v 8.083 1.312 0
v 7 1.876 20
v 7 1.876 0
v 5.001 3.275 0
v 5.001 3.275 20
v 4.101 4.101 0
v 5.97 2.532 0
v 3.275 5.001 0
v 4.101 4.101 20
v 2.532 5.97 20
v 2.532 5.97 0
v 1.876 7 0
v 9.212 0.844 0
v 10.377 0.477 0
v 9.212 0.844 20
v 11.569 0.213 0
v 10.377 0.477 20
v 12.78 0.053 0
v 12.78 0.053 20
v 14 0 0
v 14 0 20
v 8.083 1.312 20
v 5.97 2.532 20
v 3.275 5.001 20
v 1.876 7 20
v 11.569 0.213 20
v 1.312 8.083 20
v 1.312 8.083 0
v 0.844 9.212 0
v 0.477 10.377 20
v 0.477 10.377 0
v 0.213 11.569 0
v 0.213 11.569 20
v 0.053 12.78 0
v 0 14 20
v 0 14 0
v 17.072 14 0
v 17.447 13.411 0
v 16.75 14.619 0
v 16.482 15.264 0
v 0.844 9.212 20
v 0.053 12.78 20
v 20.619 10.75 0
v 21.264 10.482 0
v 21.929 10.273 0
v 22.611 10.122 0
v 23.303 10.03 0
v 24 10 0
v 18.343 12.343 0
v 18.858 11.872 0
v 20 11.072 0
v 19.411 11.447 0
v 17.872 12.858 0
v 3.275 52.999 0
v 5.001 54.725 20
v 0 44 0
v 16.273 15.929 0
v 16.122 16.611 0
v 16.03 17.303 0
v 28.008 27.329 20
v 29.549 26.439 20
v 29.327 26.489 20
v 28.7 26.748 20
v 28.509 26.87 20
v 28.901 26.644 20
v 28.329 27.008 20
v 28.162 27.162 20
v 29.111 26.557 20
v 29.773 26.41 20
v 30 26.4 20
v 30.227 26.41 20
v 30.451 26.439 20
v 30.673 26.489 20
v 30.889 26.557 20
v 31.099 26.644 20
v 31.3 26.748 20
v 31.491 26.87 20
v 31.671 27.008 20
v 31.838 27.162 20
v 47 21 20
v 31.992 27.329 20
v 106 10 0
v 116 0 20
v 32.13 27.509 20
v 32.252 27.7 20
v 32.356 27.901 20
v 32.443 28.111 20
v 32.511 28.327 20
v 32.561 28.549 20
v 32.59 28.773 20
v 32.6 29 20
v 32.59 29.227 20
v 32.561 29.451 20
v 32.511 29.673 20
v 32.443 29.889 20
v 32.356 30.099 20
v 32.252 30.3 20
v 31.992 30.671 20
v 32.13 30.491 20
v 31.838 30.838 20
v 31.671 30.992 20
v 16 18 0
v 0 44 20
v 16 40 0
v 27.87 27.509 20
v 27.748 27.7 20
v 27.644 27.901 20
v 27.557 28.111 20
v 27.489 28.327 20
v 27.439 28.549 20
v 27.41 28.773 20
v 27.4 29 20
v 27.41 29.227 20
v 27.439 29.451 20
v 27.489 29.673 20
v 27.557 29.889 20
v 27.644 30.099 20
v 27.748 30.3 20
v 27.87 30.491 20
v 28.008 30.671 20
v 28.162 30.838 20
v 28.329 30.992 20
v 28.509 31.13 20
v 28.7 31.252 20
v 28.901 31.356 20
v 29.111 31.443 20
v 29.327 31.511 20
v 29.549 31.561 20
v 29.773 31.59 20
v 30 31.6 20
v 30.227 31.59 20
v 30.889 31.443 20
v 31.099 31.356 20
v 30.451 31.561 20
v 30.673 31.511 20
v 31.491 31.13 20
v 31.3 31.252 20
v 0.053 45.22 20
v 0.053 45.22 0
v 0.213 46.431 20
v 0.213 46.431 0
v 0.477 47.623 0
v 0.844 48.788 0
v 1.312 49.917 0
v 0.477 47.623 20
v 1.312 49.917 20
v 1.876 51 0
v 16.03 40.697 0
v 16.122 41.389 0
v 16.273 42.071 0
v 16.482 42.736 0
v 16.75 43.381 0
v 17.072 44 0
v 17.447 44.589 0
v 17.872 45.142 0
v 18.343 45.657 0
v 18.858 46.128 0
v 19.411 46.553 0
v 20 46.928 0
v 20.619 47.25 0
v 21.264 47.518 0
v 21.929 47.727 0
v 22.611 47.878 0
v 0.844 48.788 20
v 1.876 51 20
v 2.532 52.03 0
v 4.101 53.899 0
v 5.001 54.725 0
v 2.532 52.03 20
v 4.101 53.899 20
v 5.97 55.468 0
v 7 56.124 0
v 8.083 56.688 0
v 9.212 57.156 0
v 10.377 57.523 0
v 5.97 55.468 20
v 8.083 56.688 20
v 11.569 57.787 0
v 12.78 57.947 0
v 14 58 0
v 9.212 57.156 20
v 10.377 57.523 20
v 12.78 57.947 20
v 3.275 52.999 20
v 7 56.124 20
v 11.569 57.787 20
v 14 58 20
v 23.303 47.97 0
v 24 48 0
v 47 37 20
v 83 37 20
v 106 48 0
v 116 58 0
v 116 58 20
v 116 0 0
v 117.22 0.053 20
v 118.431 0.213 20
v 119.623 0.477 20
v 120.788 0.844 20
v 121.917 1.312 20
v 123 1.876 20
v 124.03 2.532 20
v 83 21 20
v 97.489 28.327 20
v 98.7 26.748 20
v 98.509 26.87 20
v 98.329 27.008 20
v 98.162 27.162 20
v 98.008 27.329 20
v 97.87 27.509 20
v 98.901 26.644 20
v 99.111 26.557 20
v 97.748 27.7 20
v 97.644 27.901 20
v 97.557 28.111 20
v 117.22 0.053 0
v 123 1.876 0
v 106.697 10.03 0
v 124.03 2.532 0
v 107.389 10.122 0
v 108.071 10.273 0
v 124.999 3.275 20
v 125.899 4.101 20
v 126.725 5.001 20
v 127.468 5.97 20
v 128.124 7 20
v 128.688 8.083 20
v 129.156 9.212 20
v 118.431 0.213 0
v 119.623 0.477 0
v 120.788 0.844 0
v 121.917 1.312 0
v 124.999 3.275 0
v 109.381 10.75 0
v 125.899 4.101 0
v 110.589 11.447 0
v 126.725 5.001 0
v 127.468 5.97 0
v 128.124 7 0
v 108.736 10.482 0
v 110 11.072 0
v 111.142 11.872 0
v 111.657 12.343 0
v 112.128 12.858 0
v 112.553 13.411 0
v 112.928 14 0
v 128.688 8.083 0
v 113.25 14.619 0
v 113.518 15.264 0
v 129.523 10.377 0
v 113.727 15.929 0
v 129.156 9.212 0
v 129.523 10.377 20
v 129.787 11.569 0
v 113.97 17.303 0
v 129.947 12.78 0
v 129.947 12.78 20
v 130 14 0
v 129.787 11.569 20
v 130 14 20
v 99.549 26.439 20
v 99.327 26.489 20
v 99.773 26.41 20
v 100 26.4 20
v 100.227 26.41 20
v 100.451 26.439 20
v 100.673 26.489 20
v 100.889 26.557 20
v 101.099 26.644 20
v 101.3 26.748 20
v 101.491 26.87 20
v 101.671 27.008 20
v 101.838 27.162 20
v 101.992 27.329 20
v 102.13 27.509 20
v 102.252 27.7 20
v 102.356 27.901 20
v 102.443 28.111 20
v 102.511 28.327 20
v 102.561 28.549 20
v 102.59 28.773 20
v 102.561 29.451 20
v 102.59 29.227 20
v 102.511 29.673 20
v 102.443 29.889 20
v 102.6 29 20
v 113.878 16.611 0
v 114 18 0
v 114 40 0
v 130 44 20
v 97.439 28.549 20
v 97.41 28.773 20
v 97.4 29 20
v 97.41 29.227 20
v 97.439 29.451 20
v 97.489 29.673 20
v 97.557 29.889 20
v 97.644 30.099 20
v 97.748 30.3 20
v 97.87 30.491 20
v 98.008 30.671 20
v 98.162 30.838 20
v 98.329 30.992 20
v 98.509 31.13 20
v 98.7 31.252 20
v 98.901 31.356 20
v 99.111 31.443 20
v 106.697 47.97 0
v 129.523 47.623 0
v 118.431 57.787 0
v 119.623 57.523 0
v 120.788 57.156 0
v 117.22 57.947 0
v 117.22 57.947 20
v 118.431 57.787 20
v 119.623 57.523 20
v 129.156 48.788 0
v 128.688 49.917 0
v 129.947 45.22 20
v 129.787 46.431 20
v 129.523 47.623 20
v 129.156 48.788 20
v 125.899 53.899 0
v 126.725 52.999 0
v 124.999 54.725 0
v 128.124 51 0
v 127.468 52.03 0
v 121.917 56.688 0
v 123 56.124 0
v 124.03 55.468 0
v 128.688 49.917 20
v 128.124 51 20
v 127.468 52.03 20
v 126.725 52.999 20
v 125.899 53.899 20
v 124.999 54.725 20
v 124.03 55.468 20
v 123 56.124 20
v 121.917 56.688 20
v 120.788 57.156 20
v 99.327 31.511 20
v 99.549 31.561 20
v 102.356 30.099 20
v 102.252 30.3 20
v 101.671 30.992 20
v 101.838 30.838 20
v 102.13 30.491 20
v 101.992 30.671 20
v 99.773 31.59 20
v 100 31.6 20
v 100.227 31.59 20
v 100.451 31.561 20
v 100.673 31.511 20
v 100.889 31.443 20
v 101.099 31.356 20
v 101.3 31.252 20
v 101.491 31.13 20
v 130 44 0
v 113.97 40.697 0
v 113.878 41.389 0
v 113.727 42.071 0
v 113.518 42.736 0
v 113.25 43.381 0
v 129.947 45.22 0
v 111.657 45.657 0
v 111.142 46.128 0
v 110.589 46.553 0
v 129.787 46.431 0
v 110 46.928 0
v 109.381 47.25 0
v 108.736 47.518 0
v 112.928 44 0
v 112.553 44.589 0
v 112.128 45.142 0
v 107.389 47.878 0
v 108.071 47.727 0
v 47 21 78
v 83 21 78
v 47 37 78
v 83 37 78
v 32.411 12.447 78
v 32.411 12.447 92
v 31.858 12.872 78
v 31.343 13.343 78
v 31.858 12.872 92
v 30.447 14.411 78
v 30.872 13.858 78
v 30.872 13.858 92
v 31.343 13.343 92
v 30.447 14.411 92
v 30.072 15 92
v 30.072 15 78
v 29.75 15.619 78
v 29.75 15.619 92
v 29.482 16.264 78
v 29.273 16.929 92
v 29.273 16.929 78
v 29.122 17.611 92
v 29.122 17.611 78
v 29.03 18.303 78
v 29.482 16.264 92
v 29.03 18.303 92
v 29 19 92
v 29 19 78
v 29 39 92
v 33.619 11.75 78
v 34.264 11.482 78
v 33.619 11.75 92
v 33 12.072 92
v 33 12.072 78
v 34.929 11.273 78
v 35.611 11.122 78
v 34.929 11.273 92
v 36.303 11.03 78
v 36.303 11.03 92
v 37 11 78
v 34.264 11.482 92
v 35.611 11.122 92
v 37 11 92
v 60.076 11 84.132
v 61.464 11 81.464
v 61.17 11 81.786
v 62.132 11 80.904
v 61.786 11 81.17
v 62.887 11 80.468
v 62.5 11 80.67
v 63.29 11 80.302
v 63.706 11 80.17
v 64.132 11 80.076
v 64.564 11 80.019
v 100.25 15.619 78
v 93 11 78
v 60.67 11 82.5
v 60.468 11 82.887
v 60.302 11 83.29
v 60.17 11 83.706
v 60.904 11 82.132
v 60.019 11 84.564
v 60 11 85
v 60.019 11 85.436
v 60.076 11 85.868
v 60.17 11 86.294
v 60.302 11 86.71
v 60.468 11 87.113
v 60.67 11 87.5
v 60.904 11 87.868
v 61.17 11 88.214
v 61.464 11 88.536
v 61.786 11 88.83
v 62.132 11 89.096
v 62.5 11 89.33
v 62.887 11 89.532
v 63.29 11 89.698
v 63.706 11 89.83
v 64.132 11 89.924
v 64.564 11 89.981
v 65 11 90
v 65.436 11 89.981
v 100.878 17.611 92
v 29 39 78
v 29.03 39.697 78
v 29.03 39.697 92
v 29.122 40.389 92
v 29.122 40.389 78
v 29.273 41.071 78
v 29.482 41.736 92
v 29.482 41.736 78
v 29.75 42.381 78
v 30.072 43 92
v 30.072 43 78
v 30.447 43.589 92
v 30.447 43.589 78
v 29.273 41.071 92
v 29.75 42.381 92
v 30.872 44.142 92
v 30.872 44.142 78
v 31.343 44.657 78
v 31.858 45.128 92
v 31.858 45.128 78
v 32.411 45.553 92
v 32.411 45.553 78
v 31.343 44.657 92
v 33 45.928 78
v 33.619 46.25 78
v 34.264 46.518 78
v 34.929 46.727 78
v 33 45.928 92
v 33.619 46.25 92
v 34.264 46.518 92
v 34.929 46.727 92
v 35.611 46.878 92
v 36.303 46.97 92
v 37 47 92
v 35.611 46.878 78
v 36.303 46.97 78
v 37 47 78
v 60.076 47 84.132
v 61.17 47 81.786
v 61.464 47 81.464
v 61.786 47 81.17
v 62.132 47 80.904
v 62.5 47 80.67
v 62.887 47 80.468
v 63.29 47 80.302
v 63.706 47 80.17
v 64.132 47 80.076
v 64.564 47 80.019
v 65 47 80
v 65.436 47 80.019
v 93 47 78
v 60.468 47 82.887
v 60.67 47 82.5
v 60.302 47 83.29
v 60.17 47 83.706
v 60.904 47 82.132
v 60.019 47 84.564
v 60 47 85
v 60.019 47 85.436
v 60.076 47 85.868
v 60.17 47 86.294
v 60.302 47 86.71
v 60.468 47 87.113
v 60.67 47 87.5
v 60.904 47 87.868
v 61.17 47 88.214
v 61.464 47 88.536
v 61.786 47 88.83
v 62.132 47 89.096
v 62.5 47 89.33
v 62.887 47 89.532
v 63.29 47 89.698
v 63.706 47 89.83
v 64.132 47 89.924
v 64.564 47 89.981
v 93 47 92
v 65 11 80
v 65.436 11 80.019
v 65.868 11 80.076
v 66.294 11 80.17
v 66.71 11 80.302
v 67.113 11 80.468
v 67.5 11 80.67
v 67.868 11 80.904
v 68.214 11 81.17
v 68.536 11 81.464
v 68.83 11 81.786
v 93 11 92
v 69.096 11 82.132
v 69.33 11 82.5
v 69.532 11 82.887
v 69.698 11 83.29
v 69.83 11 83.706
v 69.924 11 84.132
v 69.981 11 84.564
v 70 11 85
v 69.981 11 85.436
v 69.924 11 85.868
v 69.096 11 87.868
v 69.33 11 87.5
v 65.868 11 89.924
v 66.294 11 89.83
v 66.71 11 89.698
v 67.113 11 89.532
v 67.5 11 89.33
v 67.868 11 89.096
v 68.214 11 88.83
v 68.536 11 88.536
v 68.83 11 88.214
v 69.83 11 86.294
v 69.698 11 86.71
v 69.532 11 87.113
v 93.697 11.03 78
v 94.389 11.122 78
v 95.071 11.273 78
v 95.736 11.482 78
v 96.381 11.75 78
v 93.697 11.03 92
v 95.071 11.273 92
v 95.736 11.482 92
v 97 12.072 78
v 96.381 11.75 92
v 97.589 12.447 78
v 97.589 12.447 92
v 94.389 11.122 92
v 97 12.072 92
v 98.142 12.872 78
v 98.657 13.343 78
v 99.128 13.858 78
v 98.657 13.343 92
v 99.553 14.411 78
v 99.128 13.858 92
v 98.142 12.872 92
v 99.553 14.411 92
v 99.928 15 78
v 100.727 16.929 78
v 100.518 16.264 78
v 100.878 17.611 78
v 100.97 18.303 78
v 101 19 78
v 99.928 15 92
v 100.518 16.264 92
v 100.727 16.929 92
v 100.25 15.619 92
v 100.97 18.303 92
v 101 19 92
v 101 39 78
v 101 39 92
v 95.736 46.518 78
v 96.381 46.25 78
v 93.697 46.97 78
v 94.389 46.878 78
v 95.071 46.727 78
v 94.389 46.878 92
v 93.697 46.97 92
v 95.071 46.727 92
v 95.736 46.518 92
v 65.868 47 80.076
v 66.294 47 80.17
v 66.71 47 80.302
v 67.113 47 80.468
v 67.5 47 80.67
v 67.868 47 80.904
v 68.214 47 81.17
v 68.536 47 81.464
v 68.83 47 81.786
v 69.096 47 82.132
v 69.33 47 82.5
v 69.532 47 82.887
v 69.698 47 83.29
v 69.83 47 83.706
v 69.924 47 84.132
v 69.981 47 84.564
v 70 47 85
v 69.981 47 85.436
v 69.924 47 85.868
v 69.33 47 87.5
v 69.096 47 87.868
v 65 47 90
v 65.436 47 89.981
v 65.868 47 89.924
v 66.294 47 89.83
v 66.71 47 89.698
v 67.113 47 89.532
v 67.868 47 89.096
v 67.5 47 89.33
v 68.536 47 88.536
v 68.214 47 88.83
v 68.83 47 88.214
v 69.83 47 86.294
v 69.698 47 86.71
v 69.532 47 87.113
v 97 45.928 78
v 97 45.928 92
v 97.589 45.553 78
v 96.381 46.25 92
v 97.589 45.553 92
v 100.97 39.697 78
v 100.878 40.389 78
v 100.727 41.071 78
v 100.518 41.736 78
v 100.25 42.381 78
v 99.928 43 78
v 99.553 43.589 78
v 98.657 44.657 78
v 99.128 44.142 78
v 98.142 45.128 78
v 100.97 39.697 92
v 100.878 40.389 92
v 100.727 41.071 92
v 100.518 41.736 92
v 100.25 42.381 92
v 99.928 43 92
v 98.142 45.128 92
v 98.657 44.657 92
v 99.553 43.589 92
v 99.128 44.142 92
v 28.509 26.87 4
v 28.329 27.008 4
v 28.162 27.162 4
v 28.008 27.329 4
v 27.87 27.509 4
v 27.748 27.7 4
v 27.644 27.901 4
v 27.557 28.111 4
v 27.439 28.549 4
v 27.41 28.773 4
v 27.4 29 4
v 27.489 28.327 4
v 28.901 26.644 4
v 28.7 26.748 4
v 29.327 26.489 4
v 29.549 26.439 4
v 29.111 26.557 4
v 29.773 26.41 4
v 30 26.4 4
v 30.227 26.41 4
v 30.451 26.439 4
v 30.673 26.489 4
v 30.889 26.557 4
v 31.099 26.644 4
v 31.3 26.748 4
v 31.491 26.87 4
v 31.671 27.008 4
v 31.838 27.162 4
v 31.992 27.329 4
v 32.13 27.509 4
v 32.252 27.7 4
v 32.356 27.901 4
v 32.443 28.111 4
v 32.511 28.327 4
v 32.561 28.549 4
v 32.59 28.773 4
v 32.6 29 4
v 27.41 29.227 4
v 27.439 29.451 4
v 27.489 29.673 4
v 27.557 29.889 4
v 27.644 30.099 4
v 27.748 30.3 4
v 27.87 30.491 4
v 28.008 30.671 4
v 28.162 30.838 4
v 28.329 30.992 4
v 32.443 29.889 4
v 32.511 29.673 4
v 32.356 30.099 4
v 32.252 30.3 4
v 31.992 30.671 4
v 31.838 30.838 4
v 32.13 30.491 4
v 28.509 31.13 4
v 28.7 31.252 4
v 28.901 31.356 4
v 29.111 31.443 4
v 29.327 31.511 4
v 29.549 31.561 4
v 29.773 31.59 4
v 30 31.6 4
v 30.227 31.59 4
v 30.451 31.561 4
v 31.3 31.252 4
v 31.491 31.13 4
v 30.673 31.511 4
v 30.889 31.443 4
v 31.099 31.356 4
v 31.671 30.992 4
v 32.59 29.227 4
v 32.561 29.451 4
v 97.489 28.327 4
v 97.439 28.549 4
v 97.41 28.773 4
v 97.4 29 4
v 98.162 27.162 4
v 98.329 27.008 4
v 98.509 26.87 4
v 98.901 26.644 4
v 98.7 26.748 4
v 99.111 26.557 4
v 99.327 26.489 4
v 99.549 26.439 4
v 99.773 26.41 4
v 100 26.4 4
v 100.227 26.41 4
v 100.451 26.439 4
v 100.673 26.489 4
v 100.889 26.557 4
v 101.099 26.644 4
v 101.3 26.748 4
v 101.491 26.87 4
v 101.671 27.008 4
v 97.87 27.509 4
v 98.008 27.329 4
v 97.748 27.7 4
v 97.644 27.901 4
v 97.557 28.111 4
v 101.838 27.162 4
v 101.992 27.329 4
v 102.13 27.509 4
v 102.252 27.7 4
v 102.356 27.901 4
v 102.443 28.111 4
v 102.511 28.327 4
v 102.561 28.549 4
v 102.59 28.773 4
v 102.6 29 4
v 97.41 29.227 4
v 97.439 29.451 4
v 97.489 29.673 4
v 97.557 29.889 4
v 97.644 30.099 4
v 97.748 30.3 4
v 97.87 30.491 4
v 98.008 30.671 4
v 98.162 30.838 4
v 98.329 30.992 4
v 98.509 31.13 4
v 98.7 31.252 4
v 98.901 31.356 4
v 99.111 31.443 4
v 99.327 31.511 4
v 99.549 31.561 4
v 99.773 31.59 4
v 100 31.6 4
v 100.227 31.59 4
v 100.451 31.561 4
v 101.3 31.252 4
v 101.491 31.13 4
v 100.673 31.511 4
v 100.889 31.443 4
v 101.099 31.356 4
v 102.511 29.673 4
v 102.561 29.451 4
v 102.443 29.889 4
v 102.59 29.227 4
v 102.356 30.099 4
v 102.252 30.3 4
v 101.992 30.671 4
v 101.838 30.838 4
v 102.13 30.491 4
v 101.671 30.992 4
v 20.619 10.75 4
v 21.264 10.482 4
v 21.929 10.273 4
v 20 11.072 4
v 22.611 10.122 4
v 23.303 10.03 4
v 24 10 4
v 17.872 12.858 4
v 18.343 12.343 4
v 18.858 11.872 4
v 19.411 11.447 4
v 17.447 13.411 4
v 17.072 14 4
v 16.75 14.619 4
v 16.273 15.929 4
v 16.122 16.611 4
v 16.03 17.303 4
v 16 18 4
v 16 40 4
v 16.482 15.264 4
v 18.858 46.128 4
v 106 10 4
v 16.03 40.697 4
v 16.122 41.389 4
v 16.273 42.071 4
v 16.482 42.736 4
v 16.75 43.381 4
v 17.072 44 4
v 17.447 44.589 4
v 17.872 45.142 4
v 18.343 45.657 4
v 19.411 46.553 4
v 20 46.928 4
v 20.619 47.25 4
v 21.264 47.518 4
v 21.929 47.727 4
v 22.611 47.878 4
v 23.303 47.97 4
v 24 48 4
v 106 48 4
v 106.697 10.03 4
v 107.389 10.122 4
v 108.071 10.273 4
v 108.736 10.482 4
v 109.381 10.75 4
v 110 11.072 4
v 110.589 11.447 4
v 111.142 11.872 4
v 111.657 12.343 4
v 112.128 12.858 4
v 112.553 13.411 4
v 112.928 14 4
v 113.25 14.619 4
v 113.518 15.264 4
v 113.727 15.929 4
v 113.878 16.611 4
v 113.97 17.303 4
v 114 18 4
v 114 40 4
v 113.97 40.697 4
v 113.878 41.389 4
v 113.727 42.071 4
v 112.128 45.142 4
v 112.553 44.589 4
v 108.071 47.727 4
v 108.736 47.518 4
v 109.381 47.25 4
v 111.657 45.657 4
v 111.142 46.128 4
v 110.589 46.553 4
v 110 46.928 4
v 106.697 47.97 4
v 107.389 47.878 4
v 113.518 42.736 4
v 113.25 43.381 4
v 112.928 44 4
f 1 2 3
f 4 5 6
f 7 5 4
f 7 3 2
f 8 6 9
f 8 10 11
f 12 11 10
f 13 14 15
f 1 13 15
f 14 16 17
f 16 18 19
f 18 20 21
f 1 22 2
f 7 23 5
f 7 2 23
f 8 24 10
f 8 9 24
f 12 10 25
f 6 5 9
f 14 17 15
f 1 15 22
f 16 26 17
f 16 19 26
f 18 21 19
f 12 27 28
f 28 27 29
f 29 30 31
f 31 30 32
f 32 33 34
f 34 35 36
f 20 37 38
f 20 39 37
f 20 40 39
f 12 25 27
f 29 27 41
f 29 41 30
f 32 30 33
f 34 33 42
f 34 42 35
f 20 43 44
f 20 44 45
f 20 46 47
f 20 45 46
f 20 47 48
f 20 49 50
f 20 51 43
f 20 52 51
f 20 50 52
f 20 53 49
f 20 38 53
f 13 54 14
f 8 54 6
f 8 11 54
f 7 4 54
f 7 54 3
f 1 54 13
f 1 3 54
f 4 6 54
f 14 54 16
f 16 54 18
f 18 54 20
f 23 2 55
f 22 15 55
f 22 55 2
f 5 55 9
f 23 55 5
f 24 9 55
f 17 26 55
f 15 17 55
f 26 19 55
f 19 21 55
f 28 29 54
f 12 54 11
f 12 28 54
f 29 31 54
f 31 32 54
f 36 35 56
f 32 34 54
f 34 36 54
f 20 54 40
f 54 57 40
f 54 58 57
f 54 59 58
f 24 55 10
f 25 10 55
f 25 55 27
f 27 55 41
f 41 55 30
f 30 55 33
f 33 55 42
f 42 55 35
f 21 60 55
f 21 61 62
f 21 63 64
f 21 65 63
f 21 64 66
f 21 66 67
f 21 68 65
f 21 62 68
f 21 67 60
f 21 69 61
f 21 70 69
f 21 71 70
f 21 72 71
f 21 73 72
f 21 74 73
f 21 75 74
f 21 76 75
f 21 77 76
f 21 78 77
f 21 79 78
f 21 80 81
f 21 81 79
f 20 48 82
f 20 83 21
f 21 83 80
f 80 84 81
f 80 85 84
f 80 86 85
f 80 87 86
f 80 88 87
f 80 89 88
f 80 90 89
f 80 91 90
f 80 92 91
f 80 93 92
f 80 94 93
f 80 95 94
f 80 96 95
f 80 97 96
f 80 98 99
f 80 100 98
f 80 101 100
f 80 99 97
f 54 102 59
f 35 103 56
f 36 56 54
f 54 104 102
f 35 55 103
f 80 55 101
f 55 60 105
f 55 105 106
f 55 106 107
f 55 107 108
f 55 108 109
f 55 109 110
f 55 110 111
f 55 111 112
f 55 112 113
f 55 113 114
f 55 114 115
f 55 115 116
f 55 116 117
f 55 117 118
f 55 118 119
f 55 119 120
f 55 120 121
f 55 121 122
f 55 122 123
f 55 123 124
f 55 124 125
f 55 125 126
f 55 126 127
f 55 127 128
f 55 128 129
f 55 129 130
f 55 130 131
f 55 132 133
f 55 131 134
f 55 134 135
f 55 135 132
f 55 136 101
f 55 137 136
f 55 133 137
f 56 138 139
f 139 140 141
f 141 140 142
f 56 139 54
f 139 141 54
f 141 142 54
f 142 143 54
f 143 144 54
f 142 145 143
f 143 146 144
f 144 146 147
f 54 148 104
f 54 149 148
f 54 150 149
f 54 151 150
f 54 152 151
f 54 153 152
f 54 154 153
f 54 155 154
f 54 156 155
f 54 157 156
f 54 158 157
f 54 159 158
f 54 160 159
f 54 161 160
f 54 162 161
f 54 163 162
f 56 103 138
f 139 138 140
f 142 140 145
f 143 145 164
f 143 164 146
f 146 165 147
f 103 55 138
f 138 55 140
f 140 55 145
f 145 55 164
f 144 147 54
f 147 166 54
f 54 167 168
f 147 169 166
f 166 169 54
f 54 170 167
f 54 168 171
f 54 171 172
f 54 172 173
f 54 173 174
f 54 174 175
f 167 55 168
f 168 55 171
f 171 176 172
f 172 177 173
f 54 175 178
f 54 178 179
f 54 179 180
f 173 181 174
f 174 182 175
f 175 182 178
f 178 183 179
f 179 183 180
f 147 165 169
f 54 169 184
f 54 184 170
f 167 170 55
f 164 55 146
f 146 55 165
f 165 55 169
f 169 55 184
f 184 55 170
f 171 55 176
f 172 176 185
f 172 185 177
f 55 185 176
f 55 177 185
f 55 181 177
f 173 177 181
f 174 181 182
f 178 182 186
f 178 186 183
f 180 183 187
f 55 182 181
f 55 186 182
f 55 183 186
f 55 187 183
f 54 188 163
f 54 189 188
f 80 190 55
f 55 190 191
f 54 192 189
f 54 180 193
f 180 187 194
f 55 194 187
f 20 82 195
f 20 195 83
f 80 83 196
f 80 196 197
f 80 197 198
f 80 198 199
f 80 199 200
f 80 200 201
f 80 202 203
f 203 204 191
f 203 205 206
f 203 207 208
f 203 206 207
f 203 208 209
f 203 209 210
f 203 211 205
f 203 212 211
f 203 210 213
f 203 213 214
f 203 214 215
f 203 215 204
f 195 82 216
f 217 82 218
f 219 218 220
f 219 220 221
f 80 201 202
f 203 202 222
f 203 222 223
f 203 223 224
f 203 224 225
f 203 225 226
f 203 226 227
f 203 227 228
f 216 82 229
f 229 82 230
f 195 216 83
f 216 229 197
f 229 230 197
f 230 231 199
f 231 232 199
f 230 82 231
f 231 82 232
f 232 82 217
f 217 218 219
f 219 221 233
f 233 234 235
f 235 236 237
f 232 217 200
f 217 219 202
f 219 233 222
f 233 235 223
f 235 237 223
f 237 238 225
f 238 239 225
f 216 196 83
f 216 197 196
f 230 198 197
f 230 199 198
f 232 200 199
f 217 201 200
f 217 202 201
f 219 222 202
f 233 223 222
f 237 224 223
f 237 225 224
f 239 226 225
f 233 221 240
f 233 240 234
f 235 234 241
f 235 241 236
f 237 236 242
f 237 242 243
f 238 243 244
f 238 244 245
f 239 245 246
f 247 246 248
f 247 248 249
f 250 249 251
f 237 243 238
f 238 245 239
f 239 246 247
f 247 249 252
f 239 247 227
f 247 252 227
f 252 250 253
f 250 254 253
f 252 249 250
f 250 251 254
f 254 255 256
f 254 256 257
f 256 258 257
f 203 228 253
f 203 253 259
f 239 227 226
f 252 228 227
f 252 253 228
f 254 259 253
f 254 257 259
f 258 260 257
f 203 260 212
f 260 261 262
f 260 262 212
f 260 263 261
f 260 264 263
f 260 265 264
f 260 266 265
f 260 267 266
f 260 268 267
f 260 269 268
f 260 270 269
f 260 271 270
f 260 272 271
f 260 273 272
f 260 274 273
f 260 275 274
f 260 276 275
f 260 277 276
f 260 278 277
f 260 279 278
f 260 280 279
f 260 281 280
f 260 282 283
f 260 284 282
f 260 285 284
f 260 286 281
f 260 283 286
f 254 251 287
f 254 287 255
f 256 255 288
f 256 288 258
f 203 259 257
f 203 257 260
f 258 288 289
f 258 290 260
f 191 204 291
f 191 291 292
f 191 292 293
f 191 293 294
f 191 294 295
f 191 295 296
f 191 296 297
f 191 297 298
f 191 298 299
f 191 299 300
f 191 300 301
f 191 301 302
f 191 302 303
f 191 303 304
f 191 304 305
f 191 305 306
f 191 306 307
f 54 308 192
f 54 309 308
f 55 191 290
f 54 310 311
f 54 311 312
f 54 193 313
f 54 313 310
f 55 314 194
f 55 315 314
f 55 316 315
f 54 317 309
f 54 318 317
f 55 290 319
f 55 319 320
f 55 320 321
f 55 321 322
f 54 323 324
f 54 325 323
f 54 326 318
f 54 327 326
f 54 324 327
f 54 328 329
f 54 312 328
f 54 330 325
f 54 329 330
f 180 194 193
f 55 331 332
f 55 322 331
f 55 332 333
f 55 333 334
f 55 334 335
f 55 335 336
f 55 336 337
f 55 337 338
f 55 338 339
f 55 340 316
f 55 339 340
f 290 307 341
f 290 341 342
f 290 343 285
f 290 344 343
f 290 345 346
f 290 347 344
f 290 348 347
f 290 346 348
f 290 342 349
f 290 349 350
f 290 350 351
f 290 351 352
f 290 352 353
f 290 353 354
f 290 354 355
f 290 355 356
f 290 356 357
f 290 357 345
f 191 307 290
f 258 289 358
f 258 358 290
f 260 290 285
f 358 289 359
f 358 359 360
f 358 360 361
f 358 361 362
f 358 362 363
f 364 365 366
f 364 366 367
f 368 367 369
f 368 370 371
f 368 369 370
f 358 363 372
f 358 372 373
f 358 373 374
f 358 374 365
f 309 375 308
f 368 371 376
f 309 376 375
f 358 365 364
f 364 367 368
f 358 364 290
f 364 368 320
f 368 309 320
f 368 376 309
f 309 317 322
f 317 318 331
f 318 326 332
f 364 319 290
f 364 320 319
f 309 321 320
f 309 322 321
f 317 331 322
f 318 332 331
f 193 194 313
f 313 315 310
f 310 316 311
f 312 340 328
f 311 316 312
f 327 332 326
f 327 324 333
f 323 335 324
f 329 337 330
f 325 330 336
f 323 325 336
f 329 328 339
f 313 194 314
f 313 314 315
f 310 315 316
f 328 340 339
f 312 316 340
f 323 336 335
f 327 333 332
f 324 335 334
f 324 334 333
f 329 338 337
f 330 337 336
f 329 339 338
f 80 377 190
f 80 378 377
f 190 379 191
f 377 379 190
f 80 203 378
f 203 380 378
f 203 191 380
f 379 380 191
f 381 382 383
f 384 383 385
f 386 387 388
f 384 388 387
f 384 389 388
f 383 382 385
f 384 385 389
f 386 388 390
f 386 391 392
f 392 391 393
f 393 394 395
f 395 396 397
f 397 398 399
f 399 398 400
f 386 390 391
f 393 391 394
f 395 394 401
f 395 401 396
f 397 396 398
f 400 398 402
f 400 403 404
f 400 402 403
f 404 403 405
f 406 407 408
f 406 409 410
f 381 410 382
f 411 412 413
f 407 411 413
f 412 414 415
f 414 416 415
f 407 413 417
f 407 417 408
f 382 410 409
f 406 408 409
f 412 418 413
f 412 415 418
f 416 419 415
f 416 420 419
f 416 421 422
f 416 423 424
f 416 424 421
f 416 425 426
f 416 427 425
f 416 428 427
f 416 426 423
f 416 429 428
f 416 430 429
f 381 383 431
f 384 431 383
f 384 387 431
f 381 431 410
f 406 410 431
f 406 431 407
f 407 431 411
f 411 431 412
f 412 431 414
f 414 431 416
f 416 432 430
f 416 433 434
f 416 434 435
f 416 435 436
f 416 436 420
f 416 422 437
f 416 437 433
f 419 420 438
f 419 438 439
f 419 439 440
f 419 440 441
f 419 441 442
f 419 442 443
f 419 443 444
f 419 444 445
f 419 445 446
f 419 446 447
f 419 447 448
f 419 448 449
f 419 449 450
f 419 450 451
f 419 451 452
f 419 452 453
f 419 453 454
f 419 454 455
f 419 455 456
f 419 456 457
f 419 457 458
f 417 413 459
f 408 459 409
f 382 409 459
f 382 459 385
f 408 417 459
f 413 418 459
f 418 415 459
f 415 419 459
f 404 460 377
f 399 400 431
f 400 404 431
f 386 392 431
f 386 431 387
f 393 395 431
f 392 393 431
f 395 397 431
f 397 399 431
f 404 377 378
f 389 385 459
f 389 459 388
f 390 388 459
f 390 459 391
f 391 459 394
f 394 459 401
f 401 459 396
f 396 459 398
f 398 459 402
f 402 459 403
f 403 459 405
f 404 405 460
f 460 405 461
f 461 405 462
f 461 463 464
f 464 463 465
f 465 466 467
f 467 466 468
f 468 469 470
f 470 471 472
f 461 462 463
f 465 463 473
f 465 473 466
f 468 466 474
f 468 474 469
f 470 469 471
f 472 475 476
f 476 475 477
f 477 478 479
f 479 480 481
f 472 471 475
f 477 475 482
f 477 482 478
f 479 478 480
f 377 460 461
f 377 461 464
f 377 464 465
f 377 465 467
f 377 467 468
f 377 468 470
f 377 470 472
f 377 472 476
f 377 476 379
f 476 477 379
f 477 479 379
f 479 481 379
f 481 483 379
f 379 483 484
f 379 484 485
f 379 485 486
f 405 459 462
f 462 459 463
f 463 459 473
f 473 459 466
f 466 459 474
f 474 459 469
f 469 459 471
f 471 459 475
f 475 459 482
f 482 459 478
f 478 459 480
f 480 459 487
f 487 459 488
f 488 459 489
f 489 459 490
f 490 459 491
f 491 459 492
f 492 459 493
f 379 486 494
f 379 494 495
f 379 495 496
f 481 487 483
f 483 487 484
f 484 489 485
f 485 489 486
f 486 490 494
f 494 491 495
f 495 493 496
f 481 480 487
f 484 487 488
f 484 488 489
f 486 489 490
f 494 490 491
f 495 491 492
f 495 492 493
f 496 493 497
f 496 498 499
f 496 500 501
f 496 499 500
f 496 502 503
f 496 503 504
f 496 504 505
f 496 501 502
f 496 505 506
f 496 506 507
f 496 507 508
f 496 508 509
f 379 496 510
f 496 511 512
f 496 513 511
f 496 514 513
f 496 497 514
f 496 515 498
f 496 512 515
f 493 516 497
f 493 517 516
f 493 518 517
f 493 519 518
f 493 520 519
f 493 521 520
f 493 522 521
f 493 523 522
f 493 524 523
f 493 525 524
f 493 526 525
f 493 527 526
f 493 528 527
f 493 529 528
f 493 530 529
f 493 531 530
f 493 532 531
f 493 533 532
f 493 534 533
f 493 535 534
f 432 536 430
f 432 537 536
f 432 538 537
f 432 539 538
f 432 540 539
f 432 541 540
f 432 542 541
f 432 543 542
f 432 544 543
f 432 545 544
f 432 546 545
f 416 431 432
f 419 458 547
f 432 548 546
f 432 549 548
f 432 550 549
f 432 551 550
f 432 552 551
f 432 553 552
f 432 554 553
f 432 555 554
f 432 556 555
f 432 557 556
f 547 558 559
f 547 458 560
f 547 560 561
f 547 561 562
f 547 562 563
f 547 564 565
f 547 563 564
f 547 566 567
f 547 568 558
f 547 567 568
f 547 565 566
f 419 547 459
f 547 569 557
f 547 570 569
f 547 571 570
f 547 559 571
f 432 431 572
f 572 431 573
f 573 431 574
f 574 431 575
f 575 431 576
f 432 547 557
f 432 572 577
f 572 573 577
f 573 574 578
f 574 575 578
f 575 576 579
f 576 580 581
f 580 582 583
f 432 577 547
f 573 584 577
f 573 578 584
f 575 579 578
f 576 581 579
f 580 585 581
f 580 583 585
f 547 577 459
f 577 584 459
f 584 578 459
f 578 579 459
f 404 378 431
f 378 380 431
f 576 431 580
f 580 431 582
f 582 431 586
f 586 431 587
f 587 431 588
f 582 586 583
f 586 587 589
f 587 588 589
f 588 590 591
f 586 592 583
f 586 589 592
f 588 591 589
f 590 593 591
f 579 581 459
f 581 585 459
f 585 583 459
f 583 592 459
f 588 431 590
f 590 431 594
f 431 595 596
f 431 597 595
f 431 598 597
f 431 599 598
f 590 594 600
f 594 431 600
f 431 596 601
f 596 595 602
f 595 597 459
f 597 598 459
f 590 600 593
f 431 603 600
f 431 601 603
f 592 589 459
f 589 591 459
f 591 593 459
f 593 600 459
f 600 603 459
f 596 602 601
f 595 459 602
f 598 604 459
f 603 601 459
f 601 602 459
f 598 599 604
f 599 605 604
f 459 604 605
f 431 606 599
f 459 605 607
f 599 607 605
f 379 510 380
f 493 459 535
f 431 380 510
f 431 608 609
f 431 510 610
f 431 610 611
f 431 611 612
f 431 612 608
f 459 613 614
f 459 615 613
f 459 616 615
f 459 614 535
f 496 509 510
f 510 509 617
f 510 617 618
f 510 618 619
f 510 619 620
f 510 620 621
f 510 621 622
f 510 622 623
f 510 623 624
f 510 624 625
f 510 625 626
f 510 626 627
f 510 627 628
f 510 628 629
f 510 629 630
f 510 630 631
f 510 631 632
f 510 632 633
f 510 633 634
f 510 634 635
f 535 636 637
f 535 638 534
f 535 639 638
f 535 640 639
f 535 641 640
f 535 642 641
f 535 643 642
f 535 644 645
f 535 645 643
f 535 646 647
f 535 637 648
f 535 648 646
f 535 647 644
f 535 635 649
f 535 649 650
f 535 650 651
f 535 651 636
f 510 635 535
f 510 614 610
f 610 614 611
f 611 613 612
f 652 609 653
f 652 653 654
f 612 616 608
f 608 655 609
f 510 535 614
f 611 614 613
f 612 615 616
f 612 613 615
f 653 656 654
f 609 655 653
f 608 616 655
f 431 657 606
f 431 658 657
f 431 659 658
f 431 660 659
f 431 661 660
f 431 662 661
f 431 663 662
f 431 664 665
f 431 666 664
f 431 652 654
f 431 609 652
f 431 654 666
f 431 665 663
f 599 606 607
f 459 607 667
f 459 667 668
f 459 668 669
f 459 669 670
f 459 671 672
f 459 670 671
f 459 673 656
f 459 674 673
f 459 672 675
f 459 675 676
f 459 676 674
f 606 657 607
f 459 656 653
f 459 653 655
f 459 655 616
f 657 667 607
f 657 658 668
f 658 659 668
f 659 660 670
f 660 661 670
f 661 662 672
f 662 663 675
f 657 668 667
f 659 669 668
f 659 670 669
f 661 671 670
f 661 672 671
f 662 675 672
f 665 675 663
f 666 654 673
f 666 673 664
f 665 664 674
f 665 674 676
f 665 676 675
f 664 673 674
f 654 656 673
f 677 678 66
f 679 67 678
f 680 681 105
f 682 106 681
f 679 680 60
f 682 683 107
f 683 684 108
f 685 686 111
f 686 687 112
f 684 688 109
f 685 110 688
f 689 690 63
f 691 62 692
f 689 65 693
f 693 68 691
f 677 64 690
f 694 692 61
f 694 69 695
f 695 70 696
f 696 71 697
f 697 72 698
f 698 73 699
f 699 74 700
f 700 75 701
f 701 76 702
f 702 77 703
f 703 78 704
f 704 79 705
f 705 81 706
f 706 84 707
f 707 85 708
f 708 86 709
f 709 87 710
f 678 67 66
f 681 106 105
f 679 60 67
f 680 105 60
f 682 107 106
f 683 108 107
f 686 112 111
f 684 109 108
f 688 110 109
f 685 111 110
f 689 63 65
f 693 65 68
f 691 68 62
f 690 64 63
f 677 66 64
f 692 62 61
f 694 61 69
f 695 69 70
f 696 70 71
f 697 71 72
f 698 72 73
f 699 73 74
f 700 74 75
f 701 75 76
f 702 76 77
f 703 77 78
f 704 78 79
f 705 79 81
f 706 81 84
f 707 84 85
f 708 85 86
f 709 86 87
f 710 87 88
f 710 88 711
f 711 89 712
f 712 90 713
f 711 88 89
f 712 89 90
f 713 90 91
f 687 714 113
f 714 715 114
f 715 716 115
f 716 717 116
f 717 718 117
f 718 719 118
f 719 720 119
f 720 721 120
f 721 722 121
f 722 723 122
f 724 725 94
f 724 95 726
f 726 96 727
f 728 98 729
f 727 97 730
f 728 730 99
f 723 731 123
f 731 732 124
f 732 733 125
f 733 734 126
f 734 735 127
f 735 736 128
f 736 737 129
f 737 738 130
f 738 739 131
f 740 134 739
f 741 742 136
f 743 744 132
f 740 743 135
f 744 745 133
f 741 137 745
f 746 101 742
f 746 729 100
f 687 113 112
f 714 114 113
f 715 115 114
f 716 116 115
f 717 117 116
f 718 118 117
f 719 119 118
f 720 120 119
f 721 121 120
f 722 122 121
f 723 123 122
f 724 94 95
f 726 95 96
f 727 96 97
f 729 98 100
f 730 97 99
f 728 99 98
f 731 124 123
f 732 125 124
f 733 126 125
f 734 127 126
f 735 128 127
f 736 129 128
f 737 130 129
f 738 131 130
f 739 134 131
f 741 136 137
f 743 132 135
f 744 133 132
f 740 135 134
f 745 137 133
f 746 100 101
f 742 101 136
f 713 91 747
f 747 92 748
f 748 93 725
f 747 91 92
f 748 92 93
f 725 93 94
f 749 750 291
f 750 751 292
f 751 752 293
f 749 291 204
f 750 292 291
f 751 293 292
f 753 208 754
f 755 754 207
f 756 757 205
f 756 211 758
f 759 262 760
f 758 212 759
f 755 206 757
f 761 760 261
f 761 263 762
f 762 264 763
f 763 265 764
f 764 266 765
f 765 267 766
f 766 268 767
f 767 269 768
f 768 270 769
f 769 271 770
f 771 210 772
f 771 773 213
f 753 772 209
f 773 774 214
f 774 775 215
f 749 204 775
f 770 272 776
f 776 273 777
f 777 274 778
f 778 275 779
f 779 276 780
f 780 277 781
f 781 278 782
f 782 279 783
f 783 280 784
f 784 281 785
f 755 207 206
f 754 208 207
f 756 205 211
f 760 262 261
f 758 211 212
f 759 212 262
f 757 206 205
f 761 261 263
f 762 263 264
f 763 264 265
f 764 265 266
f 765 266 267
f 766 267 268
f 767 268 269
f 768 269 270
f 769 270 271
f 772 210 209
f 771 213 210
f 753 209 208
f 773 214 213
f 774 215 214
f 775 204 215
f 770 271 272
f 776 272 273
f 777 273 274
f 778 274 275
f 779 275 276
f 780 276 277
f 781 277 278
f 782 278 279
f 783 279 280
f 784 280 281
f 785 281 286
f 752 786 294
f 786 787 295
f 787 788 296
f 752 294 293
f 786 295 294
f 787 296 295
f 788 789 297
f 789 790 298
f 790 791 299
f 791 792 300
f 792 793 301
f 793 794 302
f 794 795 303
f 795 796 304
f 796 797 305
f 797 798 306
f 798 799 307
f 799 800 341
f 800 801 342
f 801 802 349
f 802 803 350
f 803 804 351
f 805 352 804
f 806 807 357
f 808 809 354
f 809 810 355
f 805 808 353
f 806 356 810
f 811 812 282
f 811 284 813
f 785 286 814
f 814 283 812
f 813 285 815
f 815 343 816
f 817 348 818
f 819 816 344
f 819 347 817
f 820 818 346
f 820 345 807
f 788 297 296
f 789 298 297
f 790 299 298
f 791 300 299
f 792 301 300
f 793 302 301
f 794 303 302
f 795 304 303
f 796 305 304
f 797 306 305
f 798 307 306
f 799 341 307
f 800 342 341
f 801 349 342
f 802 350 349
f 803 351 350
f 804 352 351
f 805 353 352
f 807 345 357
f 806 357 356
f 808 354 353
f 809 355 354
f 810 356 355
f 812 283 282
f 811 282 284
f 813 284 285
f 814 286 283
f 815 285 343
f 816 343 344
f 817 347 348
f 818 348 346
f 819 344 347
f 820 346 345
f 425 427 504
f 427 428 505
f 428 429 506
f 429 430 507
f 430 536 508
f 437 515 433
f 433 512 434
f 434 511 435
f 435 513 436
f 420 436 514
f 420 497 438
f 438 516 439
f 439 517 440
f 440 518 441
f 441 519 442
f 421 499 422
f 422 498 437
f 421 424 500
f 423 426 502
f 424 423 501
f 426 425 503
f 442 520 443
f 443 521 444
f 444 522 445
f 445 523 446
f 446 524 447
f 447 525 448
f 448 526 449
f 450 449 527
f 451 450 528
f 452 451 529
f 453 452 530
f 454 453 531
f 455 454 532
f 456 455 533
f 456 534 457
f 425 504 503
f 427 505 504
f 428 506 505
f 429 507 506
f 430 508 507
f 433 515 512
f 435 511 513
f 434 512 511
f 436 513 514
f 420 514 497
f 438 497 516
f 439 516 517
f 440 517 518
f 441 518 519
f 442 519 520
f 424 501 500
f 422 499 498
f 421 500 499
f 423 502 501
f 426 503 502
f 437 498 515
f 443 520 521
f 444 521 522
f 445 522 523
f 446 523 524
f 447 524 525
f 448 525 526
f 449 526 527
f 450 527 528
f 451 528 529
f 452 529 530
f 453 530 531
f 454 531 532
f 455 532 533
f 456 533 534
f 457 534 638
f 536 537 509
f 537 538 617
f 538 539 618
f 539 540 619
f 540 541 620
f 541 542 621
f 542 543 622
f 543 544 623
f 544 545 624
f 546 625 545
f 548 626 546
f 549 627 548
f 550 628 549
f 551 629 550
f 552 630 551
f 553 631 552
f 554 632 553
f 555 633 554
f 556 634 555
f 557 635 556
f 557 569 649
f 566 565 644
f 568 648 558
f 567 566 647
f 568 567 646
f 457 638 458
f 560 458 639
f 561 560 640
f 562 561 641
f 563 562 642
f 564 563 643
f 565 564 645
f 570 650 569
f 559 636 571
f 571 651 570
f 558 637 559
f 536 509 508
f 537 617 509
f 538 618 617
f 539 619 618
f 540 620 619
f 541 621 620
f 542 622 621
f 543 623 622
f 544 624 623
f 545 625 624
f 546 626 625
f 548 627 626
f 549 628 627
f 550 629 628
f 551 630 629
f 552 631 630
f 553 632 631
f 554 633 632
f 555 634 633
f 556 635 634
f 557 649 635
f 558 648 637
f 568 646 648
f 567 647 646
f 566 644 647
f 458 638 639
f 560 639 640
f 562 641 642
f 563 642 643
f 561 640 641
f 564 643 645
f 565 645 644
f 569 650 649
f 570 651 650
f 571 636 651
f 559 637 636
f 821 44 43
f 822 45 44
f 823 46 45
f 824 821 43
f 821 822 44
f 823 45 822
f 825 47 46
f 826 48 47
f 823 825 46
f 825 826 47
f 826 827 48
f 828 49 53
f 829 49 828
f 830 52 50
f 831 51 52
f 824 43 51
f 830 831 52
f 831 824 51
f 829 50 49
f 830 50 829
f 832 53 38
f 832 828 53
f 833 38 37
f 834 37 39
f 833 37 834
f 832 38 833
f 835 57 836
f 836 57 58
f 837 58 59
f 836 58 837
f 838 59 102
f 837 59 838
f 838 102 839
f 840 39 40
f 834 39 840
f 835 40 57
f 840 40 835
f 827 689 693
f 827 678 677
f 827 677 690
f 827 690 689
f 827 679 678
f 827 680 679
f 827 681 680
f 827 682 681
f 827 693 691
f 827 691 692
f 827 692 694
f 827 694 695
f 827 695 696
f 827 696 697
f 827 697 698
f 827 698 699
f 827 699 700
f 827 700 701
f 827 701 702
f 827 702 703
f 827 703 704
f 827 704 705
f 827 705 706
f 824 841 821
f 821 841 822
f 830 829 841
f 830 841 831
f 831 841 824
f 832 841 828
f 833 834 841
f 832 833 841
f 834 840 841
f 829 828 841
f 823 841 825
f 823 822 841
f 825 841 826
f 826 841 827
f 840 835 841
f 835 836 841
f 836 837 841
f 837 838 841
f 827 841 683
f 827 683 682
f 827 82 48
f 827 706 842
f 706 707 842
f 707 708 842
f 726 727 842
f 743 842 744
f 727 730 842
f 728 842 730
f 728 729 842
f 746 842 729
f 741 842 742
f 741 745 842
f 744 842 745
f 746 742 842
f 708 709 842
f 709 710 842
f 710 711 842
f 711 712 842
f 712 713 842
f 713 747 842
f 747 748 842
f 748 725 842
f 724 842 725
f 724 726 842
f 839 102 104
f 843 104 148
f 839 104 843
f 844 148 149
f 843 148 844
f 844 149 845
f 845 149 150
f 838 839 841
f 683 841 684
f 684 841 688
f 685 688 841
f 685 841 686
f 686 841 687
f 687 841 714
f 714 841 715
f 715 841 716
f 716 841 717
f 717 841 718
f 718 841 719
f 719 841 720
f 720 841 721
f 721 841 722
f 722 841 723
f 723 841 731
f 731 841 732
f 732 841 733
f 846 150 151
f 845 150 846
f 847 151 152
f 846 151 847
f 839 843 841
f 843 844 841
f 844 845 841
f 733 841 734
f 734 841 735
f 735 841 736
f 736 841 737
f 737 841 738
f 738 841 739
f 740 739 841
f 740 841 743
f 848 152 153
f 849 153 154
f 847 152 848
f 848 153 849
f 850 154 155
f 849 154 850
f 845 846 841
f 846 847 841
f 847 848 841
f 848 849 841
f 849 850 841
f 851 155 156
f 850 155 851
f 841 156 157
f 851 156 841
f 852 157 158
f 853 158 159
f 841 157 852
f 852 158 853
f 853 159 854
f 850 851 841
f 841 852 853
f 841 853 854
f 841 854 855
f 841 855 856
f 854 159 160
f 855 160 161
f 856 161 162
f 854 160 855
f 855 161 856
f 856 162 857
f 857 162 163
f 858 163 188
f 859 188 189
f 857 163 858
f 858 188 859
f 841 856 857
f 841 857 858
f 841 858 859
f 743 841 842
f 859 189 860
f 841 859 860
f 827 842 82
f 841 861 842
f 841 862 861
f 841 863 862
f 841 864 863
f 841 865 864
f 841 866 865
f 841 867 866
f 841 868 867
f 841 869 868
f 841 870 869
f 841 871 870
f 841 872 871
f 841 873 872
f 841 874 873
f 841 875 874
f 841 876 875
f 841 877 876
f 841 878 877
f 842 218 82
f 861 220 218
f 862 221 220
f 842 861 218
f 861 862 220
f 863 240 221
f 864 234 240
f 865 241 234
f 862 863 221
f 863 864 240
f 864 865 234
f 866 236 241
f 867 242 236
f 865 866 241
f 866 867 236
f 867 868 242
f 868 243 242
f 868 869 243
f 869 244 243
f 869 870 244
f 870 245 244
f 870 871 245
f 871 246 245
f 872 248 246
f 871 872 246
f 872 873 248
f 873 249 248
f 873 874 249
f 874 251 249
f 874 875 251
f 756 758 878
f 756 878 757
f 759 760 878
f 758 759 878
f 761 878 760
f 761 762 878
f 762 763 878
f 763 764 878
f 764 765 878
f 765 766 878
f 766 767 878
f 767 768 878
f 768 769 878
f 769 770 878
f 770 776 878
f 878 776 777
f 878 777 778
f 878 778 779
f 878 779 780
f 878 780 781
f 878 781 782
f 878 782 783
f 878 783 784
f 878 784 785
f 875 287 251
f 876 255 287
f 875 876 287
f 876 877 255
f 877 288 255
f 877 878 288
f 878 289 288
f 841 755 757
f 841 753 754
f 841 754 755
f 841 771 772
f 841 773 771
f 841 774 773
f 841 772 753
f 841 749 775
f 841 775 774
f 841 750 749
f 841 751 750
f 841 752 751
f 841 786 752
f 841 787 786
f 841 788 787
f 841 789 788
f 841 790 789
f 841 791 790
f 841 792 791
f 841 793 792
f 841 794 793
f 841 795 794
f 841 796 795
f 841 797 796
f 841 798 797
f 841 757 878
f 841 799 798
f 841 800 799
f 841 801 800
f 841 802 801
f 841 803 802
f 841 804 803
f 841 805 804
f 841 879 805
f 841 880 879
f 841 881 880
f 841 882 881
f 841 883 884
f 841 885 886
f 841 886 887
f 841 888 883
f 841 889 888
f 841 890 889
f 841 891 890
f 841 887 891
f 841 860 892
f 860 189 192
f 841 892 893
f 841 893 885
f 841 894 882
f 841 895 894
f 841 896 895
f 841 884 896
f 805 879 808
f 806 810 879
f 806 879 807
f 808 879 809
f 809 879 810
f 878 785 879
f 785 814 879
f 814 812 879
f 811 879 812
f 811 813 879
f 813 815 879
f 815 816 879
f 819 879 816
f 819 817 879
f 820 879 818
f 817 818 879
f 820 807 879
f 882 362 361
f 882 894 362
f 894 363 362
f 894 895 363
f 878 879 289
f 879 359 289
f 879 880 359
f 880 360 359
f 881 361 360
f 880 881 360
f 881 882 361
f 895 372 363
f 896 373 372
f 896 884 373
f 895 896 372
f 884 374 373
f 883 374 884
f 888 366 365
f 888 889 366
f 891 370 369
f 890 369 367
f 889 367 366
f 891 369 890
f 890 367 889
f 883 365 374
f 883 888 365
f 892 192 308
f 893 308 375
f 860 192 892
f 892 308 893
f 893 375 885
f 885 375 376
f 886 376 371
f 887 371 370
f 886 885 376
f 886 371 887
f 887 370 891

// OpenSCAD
// file: common.scad
$fn = 72;

module rounded_plate(size=[100, 100, 8], r=8) {
    hull() {
        for (x = [r, size[0] - r]) {
            for (y = [r, size[1] - r]) {
                translate([x, y, 0]) cylinder(h=size[2], r=r);
            }
        }
    }
}

module screw_hole(d=5.2, h=20) {
    translate([0, 0, -0.5]) cylinder(h=h + 1, d=d);
}

module countersink(d1=10, d2=5.2, h=4) {
    cylinder(h=h, d1=d1, d2=d2);
}

module rib(length=100, height=18, thickness=5) {
    rotate([90, 0, 0])
        linear_extrude(height=thickness)
            polygon(points=[[0, 0], [length, 0], [length, height], [0, 0]]);
}

module rounded_box(size=[100, 50, 30], r=6) {
    hull() {
        for (x = [r, size[0] - r]) {
            for (y = [r, size[1] - r]) {
                for (z = [r, size[2] - r]) {
                    translate([x, y, z]) sphere(r=r);
                }
            }
        }
    }
}
// main file
include <common.scad>

// Printable stabilizer foot. Use two at the front of the base.
// It is meant to touch the court during launch and lift during trolley transport.

foot_len = 130;
foot_w = 58;
foot_h = 20;
leg_h = 72;
mount_hole_d = 5.2;
printed_pin_d = 10;

module stabilizer_foot() {
    difference() {
        union() {
            rounded_plate([foot_len, foot_w, foot_h], 14);

            // vertical lug for printed hinge pin or shoulder bolt
            translate([foot_len / 2 - 18, foot_w / 2 - 8, foot_h])
                cube([36, 16, leg_h]);

            // wider top tab
            translate([foot_len / 2 - 36, foot_w / 2 - 18, foot_h + leg_h - 14])
                rounded_plate([72, 36, 14], 8);
        }

        // hinge pin hole
        translate([foot_len / 2, foot_w / 2, foot_h + leg_h - 7])
            rotate([90, 0, 0])
                cylinder(h=foot_w + 8, d=printed_pin_d, center=true);

        // rubber pad screw holes
        for (x = [30, foot_len - 30]) {
            translate([x, foot_w / 2, -1]) screw_hole(mount_hole_d, foot_h + 2);
        }

        // underside shallow pocket for rubber strip
        translate([16, 10, -1]) rounded_plate([foot_len - 32, foot_w - 20, 5], 8);
    }
}

module printed_hinge_pin() {
    cylinder(h=foot_w + 14, d=printed_pin_d - 0.4);
    translate([0, 0, -2]) cylinder(h=2, d=printed_pin_d + 5);
    translate([0, 0, foot_w + 14]) cylinder(h=2, d=printed_pin_d + 5);
}

stabilizer_foot();
// translate([170, 0, 0]) printed_hinge_pin();
